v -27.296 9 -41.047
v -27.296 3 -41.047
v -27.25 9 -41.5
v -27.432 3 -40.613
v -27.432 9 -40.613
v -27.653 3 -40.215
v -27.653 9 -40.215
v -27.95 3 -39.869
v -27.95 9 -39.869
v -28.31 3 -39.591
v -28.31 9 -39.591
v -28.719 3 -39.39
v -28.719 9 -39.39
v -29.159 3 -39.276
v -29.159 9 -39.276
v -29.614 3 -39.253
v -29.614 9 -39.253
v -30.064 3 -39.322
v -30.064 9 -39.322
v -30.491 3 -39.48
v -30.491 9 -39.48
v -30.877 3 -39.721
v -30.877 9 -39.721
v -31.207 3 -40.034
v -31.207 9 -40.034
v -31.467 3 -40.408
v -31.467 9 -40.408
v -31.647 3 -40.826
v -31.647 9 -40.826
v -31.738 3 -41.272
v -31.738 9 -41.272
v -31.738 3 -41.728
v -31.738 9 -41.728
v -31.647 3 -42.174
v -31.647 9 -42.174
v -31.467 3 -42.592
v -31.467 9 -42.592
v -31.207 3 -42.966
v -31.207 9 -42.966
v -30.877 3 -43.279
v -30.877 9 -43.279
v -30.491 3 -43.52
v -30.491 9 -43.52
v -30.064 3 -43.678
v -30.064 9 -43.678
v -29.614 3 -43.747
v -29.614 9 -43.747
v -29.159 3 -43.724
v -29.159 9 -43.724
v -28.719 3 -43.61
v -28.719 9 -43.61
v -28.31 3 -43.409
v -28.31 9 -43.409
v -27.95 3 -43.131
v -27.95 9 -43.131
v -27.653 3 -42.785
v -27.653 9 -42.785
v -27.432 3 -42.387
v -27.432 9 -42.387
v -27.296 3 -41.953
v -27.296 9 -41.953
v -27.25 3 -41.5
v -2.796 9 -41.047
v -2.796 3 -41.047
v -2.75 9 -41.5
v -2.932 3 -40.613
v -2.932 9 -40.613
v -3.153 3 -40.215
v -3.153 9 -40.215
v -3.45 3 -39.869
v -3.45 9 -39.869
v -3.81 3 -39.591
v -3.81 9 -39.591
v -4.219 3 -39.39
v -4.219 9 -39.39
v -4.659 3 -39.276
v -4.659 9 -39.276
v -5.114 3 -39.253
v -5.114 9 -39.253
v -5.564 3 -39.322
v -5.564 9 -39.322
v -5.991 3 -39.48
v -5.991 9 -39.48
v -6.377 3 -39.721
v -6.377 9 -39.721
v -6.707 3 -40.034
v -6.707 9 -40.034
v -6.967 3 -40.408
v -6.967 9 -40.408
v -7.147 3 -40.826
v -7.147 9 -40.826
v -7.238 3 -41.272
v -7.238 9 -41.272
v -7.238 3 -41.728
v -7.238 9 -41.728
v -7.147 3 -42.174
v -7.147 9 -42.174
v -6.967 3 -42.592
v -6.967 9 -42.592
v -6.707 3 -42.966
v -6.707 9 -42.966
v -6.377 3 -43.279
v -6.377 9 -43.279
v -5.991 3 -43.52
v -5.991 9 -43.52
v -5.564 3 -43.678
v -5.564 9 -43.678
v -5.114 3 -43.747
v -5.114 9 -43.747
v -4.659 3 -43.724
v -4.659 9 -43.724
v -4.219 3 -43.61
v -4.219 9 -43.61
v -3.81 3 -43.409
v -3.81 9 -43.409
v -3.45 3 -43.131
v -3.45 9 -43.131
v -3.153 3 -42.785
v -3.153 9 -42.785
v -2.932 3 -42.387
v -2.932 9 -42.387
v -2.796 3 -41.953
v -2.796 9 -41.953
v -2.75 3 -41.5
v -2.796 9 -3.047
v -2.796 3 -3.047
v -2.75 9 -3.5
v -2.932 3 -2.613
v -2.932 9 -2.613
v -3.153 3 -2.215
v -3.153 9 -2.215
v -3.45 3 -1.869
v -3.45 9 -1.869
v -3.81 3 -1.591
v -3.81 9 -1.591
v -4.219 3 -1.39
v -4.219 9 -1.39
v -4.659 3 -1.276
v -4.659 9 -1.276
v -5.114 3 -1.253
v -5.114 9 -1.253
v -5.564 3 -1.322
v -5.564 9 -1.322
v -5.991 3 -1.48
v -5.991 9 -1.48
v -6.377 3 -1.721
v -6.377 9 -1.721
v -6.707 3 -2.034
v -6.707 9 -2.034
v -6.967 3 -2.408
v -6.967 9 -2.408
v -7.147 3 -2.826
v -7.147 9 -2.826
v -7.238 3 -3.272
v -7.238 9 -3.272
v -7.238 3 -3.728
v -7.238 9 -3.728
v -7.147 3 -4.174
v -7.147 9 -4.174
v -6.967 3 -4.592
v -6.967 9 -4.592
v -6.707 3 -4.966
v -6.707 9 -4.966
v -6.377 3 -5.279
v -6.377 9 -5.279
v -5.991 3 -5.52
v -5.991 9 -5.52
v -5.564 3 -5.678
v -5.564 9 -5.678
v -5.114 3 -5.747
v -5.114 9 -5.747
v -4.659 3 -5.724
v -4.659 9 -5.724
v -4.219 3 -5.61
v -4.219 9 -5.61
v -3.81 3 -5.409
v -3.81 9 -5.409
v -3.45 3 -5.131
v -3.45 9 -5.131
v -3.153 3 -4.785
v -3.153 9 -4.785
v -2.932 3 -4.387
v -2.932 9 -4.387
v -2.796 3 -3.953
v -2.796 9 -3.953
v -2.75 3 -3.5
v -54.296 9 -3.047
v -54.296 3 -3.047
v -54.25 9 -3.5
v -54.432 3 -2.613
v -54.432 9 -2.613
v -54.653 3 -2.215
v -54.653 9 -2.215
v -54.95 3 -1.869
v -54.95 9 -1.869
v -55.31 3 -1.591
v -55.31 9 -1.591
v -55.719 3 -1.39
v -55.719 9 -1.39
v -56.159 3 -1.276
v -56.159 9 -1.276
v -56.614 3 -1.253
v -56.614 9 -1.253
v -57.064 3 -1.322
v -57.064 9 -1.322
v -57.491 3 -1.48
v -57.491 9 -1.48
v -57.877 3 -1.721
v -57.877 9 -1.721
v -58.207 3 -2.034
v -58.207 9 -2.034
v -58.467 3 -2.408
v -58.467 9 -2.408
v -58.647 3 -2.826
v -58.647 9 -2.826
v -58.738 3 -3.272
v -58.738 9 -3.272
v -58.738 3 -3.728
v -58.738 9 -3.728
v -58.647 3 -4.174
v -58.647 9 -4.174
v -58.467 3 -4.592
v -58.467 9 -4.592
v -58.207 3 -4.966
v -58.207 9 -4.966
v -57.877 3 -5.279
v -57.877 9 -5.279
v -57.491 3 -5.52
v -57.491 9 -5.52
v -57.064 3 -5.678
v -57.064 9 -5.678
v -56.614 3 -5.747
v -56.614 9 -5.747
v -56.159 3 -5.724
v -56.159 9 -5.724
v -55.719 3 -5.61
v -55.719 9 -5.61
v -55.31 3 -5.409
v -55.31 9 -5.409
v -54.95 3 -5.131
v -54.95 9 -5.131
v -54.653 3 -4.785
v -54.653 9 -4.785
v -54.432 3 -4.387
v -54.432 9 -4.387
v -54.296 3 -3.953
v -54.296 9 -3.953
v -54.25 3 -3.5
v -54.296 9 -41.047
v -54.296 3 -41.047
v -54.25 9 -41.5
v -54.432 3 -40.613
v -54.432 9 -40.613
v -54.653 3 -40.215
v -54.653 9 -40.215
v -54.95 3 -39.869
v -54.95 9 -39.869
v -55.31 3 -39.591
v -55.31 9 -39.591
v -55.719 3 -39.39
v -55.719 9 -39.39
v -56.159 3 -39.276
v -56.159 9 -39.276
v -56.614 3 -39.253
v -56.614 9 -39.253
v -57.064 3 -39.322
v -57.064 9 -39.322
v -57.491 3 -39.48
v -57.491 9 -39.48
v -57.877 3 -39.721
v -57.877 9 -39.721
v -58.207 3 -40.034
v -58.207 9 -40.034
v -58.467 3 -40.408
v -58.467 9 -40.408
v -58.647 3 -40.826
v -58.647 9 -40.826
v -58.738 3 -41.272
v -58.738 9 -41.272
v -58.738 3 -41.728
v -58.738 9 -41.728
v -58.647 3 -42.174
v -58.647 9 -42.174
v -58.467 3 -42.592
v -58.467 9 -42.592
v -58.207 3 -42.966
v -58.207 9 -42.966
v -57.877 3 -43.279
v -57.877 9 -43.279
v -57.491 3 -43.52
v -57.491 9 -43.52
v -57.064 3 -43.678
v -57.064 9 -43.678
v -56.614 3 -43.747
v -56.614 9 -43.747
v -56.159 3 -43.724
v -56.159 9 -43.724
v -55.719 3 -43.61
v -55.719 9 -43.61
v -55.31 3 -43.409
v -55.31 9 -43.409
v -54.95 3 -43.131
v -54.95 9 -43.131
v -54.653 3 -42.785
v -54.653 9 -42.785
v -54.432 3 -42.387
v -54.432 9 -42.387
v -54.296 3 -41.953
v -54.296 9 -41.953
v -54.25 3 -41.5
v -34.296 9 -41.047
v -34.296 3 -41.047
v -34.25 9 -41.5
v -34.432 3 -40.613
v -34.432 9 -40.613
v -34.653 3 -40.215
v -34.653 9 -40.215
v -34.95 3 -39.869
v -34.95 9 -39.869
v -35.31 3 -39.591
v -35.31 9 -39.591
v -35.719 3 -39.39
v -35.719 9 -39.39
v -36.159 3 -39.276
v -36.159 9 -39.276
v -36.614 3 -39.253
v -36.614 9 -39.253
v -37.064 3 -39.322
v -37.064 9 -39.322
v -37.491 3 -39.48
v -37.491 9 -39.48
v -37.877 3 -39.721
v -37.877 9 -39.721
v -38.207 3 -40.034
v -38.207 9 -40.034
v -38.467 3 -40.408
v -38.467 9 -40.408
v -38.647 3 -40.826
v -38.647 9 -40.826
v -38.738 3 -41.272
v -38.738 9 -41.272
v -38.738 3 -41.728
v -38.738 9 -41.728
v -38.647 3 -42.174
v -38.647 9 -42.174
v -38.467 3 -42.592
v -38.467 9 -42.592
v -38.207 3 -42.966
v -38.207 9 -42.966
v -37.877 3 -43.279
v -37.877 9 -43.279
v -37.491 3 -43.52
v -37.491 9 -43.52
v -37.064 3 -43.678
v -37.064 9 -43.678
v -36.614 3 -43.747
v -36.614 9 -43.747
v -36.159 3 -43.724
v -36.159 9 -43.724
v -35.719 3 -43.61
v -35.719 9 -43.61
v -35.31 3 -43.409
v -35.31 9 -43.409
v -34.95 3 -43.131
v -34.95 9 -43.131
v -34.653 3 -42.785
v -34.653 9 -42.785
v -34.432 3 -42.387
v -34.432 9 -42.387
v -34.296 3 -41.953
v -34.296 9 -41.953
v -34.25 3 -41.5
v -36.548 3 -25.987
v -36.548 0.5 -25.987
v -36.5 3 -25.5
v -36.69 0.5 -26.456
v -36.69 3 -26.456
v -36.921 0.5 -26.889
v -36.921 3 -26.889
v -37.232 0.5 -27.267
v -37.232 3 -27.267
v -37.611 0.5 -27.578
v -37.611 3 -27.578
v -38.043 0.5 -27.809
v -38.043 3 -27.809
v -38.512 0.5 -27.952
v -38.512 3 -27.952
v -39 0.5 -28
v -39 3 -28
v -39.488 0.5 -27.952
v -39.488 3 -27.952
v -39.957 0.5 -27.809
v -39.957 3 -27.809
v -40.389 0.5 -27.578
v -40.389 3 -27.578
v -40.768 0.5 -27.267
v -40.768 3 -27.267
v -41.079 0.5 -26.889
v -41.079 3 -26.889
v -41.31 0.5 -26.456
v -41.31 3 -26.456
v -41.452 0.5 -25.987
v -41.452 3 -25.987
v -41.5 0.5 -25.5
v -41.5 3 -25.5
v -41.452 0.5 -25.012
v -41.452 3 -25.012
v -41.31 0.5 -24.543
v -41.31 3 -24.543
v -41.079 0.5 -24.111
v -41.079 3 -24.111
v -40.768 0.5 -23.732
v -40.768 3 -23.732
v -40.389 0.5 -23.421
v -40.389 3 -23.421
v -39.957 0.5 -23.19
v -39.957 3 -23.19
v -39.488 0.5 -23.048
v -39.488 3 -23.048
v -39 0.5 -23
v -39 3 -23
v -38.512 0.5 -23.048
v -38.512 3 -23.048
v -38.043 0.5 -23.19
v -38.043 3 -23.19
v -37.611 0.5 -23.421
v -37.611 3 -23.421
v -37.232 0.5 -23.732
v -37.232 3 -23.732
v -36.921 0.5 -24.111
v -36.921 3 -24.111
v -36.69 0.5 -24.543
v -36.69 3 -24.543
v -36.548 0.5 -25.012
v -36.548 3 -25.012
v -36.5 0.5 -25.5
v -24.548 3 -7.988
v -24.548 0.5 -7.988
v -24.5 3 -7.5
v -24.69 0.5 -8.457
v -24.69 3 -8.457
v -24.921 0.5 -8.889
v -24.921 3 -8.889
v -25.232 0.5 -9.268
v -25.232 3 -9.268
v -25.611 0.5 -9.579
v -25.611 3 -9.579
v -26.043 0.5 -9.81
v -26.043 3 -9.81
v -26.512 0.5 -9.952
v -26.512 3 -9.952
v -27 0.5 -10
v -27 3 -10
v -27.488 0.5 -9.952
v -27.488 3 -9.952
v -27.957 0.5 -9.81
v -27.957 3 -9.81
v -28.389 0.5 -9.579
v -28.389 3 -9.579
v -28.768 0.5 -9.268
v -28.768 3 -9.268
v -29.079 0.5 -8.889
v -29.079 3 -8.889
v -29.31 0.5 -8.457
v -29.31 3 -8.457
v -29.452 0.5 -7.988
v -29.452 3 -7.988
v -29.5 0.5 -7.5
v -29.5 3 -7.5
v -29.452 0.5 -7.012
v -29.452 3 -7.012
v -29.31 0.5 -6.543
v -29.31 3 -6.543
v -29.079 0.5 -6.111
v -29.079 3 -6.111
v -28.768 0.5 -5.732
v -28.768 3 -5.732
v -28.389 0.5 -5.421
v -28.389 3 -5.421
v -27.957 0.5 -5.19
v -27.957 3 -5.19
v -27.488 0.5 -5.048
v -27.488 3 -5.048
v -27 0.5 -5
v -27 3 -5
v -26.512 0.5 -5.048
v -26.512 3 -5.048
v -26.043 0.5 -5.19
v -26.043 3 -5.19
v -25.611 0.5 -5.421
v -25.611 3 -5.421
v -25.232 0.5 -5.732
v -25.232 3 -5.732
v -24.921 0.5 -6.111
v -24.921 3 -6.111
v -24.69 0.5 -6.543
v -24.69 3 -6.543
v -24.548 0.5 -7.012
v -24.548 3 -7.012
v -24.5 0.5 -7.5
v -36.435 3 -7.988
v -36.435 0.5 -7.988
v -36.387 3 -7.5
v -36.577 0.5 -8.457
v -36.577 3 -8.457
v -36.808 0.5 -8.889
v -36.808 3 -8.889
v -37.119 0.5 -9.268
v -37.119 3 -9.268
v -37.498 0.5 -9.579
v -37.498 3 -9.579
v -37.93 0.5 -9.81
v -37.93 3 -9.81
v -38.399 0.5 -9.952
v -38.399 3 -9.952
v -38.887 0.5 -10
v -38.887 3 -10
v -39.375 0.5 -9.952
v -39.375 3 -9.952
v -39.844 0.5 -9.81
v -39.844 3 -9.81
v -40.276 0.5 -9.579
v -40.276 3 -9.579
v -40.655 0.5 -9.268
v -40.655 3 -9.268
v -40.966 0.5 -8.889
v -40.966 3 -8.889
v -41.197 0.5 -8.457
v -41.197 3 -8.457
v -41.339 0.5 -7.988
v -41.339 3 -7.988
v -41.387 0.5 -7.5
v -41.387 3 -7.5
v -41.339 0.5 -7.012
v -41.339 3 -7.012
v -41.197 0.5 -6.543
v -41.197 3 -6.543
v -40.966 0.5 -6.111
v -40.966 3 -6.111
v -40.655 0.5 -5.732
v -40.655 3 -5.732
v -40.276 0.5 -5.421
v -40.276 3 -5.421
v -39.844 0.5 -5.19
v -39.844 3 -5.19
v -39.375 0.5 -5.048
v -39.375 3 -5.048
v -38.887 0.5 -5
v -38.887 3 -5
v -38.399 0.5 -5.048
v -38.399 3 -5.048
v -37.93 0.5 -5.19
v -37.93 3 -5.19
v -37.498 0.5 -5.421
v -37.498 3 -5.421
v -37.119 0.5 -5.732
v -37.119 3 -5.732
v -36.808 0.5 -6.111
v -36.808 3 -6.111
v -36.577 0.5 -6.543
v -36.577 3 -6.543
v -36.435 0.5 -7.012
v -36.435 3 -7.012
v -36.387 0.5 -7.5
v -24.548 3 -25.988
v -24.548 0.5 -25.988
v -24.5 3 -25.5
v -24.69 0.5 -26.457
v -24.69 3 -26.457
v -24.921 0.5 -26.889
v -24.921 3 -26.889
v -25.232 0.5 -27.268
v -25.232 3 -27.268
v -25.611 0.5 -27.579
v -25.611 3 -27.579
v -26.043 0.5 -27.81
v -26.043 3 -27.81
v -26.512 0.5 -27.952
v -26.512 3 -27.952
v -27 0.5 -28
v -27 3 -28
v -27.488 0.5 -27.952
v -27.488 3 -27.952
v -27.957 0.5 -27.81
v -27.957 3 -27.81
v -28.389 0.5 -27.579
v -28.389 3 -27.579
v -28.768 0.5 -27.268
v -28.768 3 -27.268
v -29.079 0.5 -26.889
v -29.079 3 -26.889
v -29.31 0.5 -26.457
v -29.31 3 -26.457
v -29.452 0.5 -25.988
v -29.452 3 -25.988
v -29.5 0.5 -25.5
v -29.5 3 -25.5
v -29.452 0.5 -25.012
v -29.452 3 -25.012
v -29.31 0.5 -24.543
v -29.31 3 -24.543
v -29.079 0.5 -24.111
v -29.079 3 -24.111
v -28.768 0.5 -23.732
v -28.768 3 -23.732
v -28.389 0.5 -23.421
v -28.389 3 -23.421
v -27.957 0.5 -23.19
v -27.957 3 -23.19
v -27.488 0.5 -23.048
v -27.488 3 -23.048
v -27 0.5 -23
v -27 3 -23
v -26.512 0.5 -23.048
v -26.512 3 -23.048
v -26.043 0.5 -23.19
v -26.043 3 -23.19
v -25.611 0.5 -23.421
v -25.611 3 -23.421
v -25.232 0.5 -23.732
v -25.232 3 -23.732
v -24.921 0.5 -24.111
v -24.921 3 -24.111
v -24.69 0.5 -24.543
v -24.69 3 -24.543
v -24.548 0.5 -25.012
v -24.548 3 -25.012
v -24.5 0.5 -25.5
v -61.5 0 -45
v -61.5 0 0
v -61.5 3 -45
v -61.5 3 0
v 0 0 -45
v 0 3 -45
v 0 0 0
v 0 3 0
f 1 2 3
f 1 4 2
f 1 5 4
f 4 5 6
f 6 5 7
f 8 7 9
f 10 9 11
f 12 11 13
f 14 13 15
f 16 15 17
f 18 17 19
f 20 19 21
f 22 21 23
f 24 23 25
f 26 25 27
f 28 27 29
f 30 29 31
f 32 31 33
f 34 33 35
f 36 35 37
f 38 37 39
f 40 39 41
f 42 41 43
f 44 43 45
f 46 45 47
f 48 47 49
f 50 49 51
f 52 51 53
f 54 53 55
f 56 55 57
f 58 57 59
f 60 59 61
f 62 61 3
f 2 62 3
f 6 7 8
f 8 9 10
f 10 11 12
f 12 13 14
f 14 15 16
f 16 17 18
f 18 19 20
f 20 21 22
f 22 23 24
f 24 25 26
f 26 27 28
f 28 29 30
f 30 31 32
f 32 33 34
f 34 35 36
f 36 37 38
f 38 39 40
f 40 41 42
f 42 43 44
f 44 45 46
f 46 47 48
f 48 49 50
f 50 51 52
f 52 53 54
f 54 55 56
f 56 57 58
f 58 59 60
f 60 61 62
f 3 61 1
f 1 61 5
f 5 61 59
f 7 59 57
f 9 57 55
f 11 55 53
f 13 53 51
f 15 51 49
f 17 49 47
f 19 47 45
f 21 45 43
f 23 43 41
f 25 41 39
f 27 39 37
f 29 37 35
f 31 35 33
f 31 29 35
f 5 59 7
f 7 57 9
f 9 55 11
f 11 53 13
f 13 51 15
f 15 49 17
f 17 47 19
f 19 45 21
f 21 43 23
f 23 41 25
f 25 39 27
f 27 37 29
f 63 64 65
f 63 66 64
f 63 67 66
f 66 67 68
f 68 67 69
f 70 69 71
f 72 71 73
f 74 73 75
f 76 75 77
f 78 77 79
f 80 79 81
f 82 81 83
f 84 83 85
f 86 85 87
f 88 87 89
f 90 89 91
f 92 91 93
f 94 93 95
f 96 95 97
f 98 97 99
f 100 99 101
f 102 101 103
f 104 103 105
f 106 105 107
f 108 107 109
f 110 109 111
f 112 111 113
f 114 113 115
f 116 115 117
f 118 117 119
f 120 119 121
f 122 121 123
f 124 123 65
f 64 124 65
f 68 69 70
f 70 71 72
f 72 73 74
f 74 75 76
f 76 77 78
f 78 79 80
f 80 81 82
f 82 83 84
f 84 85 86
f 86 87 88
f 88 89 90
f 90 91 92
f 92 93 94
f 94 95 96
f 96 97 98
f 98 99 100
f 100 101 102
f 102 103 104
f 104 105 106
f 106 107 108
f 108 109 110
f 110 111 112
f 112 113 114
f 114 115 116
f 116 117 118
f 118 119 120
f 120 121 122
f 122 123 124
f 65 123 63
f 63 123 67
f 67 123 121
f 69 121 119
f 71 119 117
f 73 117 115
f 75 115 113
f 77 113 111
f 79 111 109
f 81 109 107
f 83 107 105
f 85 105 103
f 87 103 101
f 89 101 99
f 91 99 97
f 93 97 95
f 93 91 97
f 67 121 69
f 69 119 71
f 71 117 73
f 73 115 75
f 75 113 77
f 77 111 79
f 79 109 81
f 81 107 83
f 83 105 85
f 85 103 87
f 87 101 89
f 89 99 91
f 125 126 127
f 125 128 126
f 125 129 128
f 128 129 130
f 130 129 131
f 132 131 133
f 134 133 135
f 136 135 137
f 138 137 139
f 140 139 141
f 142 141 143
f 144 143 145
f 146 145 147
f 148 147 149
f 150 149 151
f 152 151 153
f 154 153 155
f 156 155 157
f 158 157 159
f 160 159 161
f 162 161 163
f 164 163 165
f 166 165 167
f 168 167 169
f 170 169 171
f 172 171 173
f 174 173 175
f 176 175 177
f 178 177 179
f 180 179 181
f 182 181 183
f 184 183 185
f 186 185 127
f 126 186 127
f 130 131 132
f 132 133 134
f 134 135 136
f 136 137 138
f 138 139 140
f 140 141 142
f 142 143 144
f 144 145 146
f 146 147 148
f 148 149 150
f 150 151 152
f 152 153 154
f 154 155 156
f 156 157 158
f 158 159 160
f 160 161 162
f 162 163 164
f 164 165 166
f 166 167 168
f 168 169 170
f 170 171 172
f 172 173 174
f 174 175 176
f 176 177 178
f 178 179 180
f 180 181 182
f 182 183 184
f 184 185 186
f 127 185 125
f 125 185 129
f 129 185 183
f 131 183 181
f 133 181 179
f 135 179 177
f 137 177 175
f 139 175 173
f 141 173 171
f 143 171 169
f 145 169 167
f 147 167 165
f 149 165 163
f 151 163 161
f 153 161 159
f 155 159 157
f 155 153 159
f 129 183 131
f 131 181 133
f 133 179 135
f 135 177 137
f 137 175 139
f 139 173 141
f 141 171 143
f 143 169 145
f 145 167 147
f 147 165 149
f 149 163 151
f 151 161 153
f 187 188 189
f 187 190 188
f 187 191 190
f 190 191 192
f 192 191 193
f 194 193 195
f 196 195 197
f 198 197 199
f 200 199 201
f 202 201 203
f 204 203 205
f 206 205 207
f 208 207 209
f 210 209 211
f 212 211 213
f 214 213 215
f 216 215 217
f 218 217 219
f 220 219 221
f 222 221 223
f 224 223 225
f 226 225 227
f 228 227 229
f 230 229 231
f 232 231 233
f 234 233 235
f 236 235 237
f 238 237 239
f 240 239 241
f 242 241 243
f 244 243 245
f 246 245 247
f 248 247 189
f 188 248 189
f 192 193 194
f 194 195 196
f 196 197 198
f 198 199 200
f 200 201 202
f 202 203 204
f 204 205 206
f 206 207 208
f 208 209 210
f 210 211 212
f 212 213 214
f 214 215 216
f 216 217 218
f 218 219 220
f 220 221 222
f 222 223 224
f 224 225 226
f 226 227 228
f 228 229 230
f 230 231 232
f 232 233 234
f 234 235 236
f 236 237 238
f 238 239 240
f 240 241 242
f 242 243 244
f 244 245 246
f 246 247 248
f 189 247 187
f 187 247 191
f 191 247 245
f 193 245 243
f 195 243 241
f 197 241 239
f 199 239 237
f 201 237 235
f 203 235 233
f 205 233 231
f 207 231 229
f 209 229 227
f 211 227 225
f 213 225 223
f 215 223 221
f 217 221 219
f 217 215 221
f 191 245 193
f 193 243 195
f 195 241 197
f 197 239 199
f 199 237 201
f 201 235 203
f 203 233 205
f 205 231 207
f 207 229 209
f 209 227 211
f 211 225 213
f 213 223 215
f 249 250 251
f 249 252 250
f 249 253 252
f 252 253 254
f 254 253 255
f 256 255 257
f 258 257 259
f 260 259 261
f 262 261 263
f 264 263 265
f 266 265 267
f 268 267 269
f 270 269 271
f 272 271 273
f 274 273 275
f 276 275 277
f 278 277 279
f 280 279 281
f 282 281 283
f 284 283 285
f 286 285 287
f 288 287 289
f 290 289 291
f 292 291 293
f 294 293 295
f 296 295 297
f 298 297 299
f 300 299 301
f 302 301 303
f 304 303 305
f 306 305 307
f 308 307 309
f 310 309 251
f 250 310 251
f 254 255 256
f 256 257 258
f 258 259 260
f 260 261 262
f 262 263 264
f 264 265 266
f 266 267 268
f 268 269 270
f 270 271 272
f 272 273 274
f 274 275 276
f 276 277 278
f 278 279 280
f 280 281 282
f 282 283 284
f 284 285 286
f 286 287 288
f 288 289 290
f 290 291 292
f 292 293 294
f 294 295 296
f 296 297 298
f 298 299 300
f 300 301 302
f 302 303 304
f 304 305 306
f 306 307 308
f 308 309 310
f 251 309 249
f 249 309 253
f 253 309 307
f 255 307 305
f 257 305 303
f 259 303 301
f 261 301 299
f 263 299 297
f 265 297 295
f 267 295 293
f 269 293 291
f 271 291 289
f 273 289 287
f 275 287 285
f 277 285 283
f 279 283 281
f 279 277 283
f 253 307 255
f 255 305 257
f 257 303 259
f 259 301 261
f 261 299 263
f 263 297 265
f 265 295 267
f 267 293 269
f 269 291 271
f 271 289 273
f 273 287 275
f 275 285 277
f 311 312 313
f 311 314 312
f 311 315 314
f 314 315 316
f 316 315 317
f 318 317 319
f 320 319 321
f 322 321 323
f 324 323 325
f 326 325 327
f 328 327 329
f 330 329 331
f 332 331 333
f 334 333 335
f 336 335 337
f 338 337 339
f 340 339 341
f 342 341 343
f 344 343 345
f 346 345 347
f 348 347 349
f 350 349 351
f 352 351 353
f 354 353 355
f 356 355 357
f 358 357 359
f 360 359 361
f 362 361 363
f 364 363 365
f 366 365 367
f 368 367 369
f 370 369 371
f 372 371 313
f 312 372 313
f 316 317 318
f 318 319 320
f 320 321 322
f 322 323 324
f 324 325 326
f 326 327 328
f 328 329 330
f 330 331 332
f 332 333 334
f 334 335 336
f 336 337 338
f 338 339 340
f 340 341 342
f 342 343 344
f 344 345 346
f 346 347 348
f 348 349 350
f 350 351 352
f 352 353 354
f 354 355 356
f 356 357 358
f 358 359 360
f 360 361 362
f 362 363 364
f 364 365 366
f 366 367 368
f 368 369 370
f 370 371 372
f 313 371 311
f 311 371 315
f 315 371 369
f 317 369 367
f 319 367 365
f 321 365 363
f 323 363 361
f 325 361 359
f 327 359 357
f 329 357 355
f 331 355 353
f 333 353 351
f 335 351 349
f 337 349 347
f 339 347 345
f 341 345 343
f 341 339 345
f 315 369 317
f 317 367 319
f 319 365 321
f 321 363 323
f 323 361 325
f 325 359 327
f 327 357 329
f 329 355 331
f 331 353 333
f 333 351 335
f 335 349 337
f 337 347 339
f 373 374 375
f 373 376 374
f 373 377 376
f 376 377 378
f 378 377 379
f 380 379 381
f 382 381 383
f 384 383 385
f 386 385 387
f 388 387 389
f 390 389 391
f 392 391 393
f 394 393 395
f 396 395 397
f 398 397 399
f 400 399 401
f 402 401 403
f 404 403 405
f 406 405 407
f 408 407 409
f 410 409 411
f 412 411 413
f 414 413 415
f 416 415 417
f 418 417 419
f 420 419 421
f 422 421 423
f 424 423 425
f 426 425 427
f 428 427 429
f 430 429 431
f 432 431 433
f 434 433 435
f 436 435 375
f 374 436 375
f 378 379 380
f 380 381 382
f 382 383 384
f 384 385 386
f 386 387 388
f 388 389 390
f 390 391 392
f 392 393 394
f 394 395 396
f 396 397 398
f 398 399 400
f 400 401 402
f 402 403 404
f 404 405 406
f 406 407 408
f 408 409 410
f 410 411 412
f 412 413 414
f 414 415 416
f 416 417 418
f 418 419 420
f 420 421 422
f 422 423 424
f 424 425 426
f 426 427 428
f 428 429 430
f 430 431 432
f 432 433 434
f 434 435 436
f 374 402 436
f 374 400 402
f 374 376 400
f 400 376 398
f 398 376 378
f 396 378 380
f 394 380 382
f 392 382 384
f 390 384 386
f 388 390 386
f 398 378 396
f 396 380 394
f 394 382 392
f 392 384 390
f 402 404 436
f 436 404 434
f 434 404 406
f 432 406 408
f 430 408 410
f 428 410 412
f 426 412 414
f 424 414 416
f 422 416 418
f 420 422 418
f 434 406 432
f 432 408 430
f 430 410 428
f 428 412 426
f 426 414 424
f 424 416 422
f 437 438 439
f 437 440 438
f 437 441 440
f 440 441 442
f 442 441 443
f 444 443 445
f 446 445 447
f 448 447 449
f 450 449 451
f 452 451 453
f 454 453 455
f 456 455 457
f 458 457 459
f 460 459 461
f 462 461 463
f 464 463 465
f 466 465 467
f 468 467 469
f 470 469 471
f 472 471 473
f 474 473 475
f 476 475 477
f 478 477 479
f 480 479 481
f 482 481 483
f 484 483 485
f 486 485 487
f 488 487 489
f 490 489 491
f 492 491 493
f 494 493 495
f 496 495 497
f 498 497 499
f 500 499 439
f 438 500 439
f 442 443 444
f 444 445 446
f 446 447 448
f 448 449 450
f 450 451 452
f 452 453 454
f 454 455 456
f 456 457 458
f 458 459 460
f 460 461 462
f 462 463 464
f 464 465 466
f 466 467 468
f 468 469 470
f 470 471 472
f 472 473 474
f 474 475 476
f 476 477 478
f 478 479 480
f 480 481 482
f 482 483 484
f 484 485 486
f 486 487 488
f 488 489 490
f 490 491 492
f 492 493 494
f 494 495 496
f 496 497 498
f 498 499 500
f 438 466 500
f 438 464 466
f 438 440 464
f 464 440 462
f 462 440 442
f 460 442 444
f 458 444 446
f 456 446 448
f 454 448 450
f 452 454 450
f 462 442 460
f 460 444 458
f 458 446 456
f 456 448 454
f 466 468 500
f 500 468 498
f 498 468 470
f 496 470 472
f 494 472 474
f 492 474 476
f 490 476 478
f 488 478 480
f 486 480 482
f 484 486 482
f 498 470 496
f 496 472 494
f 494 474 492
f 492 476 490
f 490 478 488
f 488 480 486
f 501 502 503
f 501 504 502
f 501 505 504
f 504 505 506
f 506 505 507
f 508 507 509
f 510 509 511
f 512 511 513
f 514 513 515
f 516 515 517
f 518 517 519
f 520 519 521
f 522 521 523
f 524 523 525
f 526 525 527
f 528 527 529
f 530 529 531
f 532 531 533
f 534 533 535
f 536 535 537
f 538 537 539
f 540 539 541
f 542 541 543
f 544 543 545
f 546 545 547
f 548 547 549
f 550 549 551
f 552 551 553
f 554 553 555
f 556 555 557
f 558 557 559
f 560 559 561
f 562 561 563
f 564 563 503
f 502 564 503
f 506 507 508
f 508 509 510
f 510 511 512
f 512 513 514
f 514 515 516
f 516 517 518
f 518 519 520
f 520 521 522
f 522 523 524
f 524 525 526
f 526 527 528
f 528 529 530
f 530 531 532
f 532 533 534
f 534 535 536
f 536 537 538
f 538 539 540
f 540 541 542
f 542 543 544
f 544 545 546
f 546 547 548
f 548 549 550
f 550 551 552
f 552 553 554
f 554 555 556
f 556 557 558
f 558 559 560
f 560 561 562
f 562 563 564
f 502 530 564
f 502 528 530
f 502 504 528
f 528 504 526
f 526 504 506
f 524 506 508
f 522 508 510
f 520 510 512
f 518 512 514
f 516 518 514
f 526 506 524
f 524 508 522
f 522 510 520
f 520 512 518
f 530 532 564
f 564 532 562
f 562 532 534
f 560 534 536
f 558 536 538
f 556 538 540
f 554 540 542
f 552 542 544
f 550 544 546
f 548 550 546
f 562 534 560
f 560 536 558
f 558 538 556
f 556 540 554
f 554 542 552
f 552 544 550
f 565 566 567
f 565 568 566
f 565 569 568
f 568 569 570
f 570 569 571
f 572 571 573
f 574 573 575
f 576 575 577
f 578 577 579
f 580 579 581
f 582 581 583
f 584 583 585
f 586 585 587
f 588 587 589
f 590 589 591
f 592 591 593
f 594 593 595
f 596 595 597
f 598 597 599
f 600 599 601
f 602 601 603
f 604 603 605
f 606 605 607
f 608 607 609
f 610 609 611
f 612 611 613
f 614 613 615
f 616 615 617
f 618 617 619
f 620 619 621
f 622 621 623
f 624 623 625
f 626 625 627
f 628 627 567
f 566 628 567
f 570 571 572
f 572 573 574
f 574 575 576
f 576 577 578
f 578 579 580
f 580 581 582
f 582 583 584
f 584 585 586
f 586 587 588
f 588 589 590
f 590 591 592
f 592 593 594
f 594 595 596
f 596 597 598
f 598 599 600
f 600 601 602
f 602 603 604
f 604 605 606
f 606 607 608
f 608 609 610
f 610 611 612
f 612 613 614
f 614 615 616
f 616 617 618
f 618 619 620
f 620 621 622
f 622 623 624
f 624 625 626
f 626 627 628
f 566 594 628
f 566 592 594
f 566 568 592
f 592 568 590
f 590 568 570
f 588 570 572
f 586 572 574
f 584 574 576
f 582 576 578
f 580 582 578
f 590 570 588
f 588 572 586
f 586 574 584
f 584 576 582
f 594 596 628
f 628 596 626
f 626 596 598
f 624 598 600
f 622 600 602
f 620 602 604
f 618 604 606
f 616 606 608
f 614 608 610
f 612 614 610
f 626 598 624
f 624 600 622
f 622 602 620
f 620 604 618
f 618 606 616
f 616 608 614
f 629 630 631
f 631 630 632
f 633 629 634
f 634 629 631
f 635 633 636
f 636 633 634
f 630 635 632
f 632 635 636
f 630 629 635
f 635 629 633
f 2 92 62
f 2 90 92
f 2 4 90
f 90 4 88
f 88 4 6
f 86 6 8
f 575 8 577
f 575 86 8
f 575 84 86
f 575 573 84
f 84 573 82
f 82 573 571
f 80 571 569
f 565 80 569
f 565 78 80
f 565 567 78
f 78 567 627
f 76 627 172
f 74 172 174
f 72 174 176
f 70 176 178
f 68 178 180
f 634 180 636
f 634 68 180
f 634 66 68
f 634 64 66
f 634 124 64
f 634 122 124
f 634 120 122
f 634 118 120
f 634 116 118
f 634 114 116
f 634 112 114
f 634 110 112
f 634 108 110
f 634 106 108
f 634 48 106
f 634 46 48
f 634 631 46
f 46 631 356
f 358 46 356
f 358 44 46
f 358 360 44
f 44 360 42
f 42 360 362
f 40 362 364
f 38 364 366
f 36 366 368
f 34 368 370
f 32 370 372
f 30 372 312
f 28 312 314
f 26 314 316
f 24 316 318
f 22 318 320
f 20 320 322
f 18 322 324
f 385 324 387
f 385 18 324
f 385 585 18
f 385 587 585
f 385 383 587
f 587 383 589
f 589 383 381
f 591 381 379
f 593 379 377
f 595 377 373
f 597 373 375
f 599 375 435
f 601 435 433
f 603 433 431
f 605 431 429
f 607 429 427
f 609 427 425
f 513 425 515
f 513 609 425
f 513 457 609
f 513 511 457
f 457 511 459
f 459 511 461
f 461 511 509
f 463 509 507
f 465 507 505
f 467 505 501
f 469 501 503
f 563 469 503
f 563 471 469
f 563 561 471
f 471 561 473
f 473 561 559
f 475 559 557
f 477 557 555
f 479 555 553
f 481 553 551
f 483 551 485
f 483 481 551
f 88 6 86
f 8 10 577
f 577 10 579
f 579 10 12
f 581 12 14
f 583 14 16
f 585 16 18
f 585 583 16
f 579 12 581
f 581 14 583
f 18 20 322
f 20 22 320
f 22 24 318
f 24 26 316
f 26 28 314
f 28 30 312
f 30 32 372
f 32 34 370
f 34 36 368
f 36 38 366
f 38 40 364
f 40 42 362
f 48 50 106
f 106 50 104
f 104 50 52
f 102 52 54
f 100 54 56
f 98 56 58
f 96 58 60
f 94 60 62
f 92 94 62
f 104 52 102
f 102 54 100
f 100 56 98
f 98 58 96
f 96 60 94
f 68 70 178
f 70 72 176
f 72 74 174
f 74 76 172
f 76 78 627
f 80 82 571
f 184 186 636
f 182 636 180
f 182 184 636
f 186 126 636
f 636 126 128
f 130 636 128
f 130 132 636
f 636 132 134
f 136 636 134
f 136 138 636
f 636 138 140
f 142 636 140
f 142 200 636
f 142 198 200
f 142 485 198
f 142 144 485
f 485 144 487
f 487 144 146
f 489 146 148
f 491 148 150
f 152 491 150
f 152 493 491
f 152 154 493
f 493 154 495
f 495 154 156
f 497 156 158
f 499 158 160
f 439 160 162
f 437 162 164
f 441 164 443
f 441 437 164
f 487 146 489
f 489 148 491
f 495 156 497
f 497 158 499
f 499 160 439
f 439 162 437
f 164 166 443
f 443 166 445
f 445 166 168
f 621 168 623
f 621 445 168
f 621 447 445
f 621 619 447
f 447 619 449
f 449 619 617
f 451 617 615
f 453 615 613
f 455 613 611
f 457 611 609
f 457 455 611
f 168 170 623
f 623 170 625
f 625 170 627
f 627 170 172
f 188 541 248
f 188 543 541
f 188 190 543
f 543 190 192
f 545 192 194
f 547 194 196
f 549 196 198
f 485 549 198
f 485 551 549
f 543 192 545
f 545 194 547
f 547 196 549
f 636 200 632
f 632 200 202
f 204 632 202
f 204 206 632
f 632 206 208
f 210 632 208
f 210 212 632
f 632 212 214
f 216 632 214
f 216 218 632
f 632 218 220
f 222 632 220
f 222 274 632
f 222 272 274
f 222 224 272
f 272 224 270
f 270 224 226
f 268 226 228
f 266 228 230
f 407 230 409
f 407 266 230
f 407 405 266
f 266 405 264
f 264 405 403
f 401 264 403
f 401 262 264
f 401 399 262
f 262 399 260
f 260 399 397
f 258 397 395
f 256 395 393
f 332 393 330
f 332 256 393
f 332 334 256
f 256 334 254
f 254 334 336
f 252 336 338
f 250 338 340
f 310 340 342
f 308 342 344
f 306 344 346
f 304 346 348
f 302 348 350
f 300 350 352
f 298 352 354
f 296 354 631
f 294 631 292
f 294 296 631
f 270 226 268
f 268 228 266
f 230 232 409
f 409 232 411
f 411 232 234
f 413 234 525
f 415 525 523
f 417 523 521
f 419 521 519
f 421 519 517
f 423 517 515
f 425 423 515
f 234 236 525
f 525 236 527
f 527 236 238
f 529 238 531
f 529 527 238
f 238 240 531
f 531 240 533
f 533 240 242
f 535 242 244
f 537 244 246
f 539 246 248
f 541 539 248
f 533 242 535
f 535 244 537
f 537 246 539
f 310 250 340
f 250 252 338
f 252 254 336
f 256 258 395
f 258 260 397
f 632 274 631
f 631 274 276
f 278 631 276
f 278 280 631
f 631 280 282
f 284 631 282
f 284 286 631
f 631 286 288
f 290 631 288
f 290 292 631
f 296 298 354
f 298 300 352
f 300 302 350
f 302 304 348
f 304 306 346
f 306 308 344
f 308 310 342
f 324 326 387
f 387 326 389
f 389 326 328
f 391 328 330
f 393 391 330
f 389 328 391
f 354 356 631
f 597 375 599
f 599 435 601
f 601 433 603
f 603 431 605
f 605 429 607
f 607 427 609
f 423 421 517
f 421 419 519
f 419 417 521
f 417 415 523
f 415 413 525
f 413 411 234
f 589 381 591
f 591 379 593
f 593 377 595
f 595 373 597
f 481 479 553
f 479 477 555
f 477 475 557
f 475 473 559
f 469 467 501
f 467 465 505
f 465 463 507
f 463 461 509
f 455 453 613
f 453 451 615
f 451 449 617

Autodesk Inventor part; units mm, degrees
ref_plane "YZ Plane" through (0, 0, 0) normal (1, 0, 0) x (0, 1, 0)
ref_plane "XZ Plane" through (0, 0, 0) normal (0, 1, 0) x (-1, 0, 0)
ref_plane "XY Plane" through (0, 0, 0) normal (0, 0, 1) x (1, 0, 0)
sketch "Sketch1" plane through (0, 0, 0) normal (0, 1, 0) x (-1, 0, 0)
  line L0 (0, 0) -> (61.5, 0)
  line L1 (61.5, 0) -> (61.5, -45)
  line L2 (61.5, -45) -> (0, -45)
  line L3 (0, -45) -> (0, 0)
  dimension "d0" = 61.5
  dimension "d1" = 45
extrude "Extrusion1" add sketch "Sketch1" along normal blind 3
sketch "Sketch2" plane through (0, 3, 0) normal (0, 1, 0) x (1, 0, 0)
  circle A0 centre (-27, 25.5) radius 2.5
  line L0 (0, 0) -> (0, 45) projected
  line L1 (-61.5, 0) -> (0, 0) projected
  line L2 (0, 45) -> (-61.5, 45) projected
  circle A1 centre (-39, 25.4996) radius 2.5
  circle A2 centre (-38.887, 7.5) radius 2.5
  circle A3 centre (-27, 7.5) radius 2.5
  dimension "d4" = 5
  dimension "d5" = 27
  dimension "d8" = 5
  dimension "d9" = 12
  dimension "d10" = 5
  dimension "d11" = 18
  dimension "d12" = 5
  dimension "d13" = 7.5
  dimension "d14" = 7.5
  dimension "d15" = 18
hole "Hole1" at (-27, 3, -7.5) at (-38.887, 3, -7.5) at (-39, 3, -25.4996) at (-27, 3, -25.5) direction (0, -1, 0) diameter 5 depth 2.5
sketch "Sketch3" plane through (0, 3, 0) normal (0, 1, 0) x (1, 0, 0)
  circle A0 centre (-5, 3.5) radius 2.25
  line L0 (-61.5, 0) -> (0, 0) projected
  line L1 (0, 0) -> (0, 45) projected
  circle A1 centre (-56.5, 3.5) radius 2.25
  line L2 (-61.5, 45) -> (-61.5, 0) projected
  circle A2 centre (-5, 41.5) radius 2.25
  line L3 (0, 45) -> (-61.5, 45) projected
  circle A3 centre (-56.5, 41.5) radius 2.25
  circle A4 centre (-29.5, 41.5) radius 2.25
  circle A5 centre (-36.5, 41.5) radius 2.25
  dimension "d23" = 4.5
  dimension "d24" = 3.5
  dimension "d25" = 5
  dimension "d26" = 4.5
  dimension "d27" = 3.5
  dimension "d28" = 5
  dimension "d29" = 4.5
  dimension "d30" = 3.5
  dimension "d31" = 4.5
  dimension "d32" = 4.5
  dimension "d33" = 24.5
  dimension "d34" = 5
  dimension "d35" = 5
  dimension "d36" = 3.5
  dimension "d37" = 4.5
  dimension "d38" = 20
extrude "Extrusion2" add sketch "Sketch3" along normal blind 6 contours A0 | A1 | A2 | A3 | A4 | A5
properties part number "TrolleyTopPlate1"
